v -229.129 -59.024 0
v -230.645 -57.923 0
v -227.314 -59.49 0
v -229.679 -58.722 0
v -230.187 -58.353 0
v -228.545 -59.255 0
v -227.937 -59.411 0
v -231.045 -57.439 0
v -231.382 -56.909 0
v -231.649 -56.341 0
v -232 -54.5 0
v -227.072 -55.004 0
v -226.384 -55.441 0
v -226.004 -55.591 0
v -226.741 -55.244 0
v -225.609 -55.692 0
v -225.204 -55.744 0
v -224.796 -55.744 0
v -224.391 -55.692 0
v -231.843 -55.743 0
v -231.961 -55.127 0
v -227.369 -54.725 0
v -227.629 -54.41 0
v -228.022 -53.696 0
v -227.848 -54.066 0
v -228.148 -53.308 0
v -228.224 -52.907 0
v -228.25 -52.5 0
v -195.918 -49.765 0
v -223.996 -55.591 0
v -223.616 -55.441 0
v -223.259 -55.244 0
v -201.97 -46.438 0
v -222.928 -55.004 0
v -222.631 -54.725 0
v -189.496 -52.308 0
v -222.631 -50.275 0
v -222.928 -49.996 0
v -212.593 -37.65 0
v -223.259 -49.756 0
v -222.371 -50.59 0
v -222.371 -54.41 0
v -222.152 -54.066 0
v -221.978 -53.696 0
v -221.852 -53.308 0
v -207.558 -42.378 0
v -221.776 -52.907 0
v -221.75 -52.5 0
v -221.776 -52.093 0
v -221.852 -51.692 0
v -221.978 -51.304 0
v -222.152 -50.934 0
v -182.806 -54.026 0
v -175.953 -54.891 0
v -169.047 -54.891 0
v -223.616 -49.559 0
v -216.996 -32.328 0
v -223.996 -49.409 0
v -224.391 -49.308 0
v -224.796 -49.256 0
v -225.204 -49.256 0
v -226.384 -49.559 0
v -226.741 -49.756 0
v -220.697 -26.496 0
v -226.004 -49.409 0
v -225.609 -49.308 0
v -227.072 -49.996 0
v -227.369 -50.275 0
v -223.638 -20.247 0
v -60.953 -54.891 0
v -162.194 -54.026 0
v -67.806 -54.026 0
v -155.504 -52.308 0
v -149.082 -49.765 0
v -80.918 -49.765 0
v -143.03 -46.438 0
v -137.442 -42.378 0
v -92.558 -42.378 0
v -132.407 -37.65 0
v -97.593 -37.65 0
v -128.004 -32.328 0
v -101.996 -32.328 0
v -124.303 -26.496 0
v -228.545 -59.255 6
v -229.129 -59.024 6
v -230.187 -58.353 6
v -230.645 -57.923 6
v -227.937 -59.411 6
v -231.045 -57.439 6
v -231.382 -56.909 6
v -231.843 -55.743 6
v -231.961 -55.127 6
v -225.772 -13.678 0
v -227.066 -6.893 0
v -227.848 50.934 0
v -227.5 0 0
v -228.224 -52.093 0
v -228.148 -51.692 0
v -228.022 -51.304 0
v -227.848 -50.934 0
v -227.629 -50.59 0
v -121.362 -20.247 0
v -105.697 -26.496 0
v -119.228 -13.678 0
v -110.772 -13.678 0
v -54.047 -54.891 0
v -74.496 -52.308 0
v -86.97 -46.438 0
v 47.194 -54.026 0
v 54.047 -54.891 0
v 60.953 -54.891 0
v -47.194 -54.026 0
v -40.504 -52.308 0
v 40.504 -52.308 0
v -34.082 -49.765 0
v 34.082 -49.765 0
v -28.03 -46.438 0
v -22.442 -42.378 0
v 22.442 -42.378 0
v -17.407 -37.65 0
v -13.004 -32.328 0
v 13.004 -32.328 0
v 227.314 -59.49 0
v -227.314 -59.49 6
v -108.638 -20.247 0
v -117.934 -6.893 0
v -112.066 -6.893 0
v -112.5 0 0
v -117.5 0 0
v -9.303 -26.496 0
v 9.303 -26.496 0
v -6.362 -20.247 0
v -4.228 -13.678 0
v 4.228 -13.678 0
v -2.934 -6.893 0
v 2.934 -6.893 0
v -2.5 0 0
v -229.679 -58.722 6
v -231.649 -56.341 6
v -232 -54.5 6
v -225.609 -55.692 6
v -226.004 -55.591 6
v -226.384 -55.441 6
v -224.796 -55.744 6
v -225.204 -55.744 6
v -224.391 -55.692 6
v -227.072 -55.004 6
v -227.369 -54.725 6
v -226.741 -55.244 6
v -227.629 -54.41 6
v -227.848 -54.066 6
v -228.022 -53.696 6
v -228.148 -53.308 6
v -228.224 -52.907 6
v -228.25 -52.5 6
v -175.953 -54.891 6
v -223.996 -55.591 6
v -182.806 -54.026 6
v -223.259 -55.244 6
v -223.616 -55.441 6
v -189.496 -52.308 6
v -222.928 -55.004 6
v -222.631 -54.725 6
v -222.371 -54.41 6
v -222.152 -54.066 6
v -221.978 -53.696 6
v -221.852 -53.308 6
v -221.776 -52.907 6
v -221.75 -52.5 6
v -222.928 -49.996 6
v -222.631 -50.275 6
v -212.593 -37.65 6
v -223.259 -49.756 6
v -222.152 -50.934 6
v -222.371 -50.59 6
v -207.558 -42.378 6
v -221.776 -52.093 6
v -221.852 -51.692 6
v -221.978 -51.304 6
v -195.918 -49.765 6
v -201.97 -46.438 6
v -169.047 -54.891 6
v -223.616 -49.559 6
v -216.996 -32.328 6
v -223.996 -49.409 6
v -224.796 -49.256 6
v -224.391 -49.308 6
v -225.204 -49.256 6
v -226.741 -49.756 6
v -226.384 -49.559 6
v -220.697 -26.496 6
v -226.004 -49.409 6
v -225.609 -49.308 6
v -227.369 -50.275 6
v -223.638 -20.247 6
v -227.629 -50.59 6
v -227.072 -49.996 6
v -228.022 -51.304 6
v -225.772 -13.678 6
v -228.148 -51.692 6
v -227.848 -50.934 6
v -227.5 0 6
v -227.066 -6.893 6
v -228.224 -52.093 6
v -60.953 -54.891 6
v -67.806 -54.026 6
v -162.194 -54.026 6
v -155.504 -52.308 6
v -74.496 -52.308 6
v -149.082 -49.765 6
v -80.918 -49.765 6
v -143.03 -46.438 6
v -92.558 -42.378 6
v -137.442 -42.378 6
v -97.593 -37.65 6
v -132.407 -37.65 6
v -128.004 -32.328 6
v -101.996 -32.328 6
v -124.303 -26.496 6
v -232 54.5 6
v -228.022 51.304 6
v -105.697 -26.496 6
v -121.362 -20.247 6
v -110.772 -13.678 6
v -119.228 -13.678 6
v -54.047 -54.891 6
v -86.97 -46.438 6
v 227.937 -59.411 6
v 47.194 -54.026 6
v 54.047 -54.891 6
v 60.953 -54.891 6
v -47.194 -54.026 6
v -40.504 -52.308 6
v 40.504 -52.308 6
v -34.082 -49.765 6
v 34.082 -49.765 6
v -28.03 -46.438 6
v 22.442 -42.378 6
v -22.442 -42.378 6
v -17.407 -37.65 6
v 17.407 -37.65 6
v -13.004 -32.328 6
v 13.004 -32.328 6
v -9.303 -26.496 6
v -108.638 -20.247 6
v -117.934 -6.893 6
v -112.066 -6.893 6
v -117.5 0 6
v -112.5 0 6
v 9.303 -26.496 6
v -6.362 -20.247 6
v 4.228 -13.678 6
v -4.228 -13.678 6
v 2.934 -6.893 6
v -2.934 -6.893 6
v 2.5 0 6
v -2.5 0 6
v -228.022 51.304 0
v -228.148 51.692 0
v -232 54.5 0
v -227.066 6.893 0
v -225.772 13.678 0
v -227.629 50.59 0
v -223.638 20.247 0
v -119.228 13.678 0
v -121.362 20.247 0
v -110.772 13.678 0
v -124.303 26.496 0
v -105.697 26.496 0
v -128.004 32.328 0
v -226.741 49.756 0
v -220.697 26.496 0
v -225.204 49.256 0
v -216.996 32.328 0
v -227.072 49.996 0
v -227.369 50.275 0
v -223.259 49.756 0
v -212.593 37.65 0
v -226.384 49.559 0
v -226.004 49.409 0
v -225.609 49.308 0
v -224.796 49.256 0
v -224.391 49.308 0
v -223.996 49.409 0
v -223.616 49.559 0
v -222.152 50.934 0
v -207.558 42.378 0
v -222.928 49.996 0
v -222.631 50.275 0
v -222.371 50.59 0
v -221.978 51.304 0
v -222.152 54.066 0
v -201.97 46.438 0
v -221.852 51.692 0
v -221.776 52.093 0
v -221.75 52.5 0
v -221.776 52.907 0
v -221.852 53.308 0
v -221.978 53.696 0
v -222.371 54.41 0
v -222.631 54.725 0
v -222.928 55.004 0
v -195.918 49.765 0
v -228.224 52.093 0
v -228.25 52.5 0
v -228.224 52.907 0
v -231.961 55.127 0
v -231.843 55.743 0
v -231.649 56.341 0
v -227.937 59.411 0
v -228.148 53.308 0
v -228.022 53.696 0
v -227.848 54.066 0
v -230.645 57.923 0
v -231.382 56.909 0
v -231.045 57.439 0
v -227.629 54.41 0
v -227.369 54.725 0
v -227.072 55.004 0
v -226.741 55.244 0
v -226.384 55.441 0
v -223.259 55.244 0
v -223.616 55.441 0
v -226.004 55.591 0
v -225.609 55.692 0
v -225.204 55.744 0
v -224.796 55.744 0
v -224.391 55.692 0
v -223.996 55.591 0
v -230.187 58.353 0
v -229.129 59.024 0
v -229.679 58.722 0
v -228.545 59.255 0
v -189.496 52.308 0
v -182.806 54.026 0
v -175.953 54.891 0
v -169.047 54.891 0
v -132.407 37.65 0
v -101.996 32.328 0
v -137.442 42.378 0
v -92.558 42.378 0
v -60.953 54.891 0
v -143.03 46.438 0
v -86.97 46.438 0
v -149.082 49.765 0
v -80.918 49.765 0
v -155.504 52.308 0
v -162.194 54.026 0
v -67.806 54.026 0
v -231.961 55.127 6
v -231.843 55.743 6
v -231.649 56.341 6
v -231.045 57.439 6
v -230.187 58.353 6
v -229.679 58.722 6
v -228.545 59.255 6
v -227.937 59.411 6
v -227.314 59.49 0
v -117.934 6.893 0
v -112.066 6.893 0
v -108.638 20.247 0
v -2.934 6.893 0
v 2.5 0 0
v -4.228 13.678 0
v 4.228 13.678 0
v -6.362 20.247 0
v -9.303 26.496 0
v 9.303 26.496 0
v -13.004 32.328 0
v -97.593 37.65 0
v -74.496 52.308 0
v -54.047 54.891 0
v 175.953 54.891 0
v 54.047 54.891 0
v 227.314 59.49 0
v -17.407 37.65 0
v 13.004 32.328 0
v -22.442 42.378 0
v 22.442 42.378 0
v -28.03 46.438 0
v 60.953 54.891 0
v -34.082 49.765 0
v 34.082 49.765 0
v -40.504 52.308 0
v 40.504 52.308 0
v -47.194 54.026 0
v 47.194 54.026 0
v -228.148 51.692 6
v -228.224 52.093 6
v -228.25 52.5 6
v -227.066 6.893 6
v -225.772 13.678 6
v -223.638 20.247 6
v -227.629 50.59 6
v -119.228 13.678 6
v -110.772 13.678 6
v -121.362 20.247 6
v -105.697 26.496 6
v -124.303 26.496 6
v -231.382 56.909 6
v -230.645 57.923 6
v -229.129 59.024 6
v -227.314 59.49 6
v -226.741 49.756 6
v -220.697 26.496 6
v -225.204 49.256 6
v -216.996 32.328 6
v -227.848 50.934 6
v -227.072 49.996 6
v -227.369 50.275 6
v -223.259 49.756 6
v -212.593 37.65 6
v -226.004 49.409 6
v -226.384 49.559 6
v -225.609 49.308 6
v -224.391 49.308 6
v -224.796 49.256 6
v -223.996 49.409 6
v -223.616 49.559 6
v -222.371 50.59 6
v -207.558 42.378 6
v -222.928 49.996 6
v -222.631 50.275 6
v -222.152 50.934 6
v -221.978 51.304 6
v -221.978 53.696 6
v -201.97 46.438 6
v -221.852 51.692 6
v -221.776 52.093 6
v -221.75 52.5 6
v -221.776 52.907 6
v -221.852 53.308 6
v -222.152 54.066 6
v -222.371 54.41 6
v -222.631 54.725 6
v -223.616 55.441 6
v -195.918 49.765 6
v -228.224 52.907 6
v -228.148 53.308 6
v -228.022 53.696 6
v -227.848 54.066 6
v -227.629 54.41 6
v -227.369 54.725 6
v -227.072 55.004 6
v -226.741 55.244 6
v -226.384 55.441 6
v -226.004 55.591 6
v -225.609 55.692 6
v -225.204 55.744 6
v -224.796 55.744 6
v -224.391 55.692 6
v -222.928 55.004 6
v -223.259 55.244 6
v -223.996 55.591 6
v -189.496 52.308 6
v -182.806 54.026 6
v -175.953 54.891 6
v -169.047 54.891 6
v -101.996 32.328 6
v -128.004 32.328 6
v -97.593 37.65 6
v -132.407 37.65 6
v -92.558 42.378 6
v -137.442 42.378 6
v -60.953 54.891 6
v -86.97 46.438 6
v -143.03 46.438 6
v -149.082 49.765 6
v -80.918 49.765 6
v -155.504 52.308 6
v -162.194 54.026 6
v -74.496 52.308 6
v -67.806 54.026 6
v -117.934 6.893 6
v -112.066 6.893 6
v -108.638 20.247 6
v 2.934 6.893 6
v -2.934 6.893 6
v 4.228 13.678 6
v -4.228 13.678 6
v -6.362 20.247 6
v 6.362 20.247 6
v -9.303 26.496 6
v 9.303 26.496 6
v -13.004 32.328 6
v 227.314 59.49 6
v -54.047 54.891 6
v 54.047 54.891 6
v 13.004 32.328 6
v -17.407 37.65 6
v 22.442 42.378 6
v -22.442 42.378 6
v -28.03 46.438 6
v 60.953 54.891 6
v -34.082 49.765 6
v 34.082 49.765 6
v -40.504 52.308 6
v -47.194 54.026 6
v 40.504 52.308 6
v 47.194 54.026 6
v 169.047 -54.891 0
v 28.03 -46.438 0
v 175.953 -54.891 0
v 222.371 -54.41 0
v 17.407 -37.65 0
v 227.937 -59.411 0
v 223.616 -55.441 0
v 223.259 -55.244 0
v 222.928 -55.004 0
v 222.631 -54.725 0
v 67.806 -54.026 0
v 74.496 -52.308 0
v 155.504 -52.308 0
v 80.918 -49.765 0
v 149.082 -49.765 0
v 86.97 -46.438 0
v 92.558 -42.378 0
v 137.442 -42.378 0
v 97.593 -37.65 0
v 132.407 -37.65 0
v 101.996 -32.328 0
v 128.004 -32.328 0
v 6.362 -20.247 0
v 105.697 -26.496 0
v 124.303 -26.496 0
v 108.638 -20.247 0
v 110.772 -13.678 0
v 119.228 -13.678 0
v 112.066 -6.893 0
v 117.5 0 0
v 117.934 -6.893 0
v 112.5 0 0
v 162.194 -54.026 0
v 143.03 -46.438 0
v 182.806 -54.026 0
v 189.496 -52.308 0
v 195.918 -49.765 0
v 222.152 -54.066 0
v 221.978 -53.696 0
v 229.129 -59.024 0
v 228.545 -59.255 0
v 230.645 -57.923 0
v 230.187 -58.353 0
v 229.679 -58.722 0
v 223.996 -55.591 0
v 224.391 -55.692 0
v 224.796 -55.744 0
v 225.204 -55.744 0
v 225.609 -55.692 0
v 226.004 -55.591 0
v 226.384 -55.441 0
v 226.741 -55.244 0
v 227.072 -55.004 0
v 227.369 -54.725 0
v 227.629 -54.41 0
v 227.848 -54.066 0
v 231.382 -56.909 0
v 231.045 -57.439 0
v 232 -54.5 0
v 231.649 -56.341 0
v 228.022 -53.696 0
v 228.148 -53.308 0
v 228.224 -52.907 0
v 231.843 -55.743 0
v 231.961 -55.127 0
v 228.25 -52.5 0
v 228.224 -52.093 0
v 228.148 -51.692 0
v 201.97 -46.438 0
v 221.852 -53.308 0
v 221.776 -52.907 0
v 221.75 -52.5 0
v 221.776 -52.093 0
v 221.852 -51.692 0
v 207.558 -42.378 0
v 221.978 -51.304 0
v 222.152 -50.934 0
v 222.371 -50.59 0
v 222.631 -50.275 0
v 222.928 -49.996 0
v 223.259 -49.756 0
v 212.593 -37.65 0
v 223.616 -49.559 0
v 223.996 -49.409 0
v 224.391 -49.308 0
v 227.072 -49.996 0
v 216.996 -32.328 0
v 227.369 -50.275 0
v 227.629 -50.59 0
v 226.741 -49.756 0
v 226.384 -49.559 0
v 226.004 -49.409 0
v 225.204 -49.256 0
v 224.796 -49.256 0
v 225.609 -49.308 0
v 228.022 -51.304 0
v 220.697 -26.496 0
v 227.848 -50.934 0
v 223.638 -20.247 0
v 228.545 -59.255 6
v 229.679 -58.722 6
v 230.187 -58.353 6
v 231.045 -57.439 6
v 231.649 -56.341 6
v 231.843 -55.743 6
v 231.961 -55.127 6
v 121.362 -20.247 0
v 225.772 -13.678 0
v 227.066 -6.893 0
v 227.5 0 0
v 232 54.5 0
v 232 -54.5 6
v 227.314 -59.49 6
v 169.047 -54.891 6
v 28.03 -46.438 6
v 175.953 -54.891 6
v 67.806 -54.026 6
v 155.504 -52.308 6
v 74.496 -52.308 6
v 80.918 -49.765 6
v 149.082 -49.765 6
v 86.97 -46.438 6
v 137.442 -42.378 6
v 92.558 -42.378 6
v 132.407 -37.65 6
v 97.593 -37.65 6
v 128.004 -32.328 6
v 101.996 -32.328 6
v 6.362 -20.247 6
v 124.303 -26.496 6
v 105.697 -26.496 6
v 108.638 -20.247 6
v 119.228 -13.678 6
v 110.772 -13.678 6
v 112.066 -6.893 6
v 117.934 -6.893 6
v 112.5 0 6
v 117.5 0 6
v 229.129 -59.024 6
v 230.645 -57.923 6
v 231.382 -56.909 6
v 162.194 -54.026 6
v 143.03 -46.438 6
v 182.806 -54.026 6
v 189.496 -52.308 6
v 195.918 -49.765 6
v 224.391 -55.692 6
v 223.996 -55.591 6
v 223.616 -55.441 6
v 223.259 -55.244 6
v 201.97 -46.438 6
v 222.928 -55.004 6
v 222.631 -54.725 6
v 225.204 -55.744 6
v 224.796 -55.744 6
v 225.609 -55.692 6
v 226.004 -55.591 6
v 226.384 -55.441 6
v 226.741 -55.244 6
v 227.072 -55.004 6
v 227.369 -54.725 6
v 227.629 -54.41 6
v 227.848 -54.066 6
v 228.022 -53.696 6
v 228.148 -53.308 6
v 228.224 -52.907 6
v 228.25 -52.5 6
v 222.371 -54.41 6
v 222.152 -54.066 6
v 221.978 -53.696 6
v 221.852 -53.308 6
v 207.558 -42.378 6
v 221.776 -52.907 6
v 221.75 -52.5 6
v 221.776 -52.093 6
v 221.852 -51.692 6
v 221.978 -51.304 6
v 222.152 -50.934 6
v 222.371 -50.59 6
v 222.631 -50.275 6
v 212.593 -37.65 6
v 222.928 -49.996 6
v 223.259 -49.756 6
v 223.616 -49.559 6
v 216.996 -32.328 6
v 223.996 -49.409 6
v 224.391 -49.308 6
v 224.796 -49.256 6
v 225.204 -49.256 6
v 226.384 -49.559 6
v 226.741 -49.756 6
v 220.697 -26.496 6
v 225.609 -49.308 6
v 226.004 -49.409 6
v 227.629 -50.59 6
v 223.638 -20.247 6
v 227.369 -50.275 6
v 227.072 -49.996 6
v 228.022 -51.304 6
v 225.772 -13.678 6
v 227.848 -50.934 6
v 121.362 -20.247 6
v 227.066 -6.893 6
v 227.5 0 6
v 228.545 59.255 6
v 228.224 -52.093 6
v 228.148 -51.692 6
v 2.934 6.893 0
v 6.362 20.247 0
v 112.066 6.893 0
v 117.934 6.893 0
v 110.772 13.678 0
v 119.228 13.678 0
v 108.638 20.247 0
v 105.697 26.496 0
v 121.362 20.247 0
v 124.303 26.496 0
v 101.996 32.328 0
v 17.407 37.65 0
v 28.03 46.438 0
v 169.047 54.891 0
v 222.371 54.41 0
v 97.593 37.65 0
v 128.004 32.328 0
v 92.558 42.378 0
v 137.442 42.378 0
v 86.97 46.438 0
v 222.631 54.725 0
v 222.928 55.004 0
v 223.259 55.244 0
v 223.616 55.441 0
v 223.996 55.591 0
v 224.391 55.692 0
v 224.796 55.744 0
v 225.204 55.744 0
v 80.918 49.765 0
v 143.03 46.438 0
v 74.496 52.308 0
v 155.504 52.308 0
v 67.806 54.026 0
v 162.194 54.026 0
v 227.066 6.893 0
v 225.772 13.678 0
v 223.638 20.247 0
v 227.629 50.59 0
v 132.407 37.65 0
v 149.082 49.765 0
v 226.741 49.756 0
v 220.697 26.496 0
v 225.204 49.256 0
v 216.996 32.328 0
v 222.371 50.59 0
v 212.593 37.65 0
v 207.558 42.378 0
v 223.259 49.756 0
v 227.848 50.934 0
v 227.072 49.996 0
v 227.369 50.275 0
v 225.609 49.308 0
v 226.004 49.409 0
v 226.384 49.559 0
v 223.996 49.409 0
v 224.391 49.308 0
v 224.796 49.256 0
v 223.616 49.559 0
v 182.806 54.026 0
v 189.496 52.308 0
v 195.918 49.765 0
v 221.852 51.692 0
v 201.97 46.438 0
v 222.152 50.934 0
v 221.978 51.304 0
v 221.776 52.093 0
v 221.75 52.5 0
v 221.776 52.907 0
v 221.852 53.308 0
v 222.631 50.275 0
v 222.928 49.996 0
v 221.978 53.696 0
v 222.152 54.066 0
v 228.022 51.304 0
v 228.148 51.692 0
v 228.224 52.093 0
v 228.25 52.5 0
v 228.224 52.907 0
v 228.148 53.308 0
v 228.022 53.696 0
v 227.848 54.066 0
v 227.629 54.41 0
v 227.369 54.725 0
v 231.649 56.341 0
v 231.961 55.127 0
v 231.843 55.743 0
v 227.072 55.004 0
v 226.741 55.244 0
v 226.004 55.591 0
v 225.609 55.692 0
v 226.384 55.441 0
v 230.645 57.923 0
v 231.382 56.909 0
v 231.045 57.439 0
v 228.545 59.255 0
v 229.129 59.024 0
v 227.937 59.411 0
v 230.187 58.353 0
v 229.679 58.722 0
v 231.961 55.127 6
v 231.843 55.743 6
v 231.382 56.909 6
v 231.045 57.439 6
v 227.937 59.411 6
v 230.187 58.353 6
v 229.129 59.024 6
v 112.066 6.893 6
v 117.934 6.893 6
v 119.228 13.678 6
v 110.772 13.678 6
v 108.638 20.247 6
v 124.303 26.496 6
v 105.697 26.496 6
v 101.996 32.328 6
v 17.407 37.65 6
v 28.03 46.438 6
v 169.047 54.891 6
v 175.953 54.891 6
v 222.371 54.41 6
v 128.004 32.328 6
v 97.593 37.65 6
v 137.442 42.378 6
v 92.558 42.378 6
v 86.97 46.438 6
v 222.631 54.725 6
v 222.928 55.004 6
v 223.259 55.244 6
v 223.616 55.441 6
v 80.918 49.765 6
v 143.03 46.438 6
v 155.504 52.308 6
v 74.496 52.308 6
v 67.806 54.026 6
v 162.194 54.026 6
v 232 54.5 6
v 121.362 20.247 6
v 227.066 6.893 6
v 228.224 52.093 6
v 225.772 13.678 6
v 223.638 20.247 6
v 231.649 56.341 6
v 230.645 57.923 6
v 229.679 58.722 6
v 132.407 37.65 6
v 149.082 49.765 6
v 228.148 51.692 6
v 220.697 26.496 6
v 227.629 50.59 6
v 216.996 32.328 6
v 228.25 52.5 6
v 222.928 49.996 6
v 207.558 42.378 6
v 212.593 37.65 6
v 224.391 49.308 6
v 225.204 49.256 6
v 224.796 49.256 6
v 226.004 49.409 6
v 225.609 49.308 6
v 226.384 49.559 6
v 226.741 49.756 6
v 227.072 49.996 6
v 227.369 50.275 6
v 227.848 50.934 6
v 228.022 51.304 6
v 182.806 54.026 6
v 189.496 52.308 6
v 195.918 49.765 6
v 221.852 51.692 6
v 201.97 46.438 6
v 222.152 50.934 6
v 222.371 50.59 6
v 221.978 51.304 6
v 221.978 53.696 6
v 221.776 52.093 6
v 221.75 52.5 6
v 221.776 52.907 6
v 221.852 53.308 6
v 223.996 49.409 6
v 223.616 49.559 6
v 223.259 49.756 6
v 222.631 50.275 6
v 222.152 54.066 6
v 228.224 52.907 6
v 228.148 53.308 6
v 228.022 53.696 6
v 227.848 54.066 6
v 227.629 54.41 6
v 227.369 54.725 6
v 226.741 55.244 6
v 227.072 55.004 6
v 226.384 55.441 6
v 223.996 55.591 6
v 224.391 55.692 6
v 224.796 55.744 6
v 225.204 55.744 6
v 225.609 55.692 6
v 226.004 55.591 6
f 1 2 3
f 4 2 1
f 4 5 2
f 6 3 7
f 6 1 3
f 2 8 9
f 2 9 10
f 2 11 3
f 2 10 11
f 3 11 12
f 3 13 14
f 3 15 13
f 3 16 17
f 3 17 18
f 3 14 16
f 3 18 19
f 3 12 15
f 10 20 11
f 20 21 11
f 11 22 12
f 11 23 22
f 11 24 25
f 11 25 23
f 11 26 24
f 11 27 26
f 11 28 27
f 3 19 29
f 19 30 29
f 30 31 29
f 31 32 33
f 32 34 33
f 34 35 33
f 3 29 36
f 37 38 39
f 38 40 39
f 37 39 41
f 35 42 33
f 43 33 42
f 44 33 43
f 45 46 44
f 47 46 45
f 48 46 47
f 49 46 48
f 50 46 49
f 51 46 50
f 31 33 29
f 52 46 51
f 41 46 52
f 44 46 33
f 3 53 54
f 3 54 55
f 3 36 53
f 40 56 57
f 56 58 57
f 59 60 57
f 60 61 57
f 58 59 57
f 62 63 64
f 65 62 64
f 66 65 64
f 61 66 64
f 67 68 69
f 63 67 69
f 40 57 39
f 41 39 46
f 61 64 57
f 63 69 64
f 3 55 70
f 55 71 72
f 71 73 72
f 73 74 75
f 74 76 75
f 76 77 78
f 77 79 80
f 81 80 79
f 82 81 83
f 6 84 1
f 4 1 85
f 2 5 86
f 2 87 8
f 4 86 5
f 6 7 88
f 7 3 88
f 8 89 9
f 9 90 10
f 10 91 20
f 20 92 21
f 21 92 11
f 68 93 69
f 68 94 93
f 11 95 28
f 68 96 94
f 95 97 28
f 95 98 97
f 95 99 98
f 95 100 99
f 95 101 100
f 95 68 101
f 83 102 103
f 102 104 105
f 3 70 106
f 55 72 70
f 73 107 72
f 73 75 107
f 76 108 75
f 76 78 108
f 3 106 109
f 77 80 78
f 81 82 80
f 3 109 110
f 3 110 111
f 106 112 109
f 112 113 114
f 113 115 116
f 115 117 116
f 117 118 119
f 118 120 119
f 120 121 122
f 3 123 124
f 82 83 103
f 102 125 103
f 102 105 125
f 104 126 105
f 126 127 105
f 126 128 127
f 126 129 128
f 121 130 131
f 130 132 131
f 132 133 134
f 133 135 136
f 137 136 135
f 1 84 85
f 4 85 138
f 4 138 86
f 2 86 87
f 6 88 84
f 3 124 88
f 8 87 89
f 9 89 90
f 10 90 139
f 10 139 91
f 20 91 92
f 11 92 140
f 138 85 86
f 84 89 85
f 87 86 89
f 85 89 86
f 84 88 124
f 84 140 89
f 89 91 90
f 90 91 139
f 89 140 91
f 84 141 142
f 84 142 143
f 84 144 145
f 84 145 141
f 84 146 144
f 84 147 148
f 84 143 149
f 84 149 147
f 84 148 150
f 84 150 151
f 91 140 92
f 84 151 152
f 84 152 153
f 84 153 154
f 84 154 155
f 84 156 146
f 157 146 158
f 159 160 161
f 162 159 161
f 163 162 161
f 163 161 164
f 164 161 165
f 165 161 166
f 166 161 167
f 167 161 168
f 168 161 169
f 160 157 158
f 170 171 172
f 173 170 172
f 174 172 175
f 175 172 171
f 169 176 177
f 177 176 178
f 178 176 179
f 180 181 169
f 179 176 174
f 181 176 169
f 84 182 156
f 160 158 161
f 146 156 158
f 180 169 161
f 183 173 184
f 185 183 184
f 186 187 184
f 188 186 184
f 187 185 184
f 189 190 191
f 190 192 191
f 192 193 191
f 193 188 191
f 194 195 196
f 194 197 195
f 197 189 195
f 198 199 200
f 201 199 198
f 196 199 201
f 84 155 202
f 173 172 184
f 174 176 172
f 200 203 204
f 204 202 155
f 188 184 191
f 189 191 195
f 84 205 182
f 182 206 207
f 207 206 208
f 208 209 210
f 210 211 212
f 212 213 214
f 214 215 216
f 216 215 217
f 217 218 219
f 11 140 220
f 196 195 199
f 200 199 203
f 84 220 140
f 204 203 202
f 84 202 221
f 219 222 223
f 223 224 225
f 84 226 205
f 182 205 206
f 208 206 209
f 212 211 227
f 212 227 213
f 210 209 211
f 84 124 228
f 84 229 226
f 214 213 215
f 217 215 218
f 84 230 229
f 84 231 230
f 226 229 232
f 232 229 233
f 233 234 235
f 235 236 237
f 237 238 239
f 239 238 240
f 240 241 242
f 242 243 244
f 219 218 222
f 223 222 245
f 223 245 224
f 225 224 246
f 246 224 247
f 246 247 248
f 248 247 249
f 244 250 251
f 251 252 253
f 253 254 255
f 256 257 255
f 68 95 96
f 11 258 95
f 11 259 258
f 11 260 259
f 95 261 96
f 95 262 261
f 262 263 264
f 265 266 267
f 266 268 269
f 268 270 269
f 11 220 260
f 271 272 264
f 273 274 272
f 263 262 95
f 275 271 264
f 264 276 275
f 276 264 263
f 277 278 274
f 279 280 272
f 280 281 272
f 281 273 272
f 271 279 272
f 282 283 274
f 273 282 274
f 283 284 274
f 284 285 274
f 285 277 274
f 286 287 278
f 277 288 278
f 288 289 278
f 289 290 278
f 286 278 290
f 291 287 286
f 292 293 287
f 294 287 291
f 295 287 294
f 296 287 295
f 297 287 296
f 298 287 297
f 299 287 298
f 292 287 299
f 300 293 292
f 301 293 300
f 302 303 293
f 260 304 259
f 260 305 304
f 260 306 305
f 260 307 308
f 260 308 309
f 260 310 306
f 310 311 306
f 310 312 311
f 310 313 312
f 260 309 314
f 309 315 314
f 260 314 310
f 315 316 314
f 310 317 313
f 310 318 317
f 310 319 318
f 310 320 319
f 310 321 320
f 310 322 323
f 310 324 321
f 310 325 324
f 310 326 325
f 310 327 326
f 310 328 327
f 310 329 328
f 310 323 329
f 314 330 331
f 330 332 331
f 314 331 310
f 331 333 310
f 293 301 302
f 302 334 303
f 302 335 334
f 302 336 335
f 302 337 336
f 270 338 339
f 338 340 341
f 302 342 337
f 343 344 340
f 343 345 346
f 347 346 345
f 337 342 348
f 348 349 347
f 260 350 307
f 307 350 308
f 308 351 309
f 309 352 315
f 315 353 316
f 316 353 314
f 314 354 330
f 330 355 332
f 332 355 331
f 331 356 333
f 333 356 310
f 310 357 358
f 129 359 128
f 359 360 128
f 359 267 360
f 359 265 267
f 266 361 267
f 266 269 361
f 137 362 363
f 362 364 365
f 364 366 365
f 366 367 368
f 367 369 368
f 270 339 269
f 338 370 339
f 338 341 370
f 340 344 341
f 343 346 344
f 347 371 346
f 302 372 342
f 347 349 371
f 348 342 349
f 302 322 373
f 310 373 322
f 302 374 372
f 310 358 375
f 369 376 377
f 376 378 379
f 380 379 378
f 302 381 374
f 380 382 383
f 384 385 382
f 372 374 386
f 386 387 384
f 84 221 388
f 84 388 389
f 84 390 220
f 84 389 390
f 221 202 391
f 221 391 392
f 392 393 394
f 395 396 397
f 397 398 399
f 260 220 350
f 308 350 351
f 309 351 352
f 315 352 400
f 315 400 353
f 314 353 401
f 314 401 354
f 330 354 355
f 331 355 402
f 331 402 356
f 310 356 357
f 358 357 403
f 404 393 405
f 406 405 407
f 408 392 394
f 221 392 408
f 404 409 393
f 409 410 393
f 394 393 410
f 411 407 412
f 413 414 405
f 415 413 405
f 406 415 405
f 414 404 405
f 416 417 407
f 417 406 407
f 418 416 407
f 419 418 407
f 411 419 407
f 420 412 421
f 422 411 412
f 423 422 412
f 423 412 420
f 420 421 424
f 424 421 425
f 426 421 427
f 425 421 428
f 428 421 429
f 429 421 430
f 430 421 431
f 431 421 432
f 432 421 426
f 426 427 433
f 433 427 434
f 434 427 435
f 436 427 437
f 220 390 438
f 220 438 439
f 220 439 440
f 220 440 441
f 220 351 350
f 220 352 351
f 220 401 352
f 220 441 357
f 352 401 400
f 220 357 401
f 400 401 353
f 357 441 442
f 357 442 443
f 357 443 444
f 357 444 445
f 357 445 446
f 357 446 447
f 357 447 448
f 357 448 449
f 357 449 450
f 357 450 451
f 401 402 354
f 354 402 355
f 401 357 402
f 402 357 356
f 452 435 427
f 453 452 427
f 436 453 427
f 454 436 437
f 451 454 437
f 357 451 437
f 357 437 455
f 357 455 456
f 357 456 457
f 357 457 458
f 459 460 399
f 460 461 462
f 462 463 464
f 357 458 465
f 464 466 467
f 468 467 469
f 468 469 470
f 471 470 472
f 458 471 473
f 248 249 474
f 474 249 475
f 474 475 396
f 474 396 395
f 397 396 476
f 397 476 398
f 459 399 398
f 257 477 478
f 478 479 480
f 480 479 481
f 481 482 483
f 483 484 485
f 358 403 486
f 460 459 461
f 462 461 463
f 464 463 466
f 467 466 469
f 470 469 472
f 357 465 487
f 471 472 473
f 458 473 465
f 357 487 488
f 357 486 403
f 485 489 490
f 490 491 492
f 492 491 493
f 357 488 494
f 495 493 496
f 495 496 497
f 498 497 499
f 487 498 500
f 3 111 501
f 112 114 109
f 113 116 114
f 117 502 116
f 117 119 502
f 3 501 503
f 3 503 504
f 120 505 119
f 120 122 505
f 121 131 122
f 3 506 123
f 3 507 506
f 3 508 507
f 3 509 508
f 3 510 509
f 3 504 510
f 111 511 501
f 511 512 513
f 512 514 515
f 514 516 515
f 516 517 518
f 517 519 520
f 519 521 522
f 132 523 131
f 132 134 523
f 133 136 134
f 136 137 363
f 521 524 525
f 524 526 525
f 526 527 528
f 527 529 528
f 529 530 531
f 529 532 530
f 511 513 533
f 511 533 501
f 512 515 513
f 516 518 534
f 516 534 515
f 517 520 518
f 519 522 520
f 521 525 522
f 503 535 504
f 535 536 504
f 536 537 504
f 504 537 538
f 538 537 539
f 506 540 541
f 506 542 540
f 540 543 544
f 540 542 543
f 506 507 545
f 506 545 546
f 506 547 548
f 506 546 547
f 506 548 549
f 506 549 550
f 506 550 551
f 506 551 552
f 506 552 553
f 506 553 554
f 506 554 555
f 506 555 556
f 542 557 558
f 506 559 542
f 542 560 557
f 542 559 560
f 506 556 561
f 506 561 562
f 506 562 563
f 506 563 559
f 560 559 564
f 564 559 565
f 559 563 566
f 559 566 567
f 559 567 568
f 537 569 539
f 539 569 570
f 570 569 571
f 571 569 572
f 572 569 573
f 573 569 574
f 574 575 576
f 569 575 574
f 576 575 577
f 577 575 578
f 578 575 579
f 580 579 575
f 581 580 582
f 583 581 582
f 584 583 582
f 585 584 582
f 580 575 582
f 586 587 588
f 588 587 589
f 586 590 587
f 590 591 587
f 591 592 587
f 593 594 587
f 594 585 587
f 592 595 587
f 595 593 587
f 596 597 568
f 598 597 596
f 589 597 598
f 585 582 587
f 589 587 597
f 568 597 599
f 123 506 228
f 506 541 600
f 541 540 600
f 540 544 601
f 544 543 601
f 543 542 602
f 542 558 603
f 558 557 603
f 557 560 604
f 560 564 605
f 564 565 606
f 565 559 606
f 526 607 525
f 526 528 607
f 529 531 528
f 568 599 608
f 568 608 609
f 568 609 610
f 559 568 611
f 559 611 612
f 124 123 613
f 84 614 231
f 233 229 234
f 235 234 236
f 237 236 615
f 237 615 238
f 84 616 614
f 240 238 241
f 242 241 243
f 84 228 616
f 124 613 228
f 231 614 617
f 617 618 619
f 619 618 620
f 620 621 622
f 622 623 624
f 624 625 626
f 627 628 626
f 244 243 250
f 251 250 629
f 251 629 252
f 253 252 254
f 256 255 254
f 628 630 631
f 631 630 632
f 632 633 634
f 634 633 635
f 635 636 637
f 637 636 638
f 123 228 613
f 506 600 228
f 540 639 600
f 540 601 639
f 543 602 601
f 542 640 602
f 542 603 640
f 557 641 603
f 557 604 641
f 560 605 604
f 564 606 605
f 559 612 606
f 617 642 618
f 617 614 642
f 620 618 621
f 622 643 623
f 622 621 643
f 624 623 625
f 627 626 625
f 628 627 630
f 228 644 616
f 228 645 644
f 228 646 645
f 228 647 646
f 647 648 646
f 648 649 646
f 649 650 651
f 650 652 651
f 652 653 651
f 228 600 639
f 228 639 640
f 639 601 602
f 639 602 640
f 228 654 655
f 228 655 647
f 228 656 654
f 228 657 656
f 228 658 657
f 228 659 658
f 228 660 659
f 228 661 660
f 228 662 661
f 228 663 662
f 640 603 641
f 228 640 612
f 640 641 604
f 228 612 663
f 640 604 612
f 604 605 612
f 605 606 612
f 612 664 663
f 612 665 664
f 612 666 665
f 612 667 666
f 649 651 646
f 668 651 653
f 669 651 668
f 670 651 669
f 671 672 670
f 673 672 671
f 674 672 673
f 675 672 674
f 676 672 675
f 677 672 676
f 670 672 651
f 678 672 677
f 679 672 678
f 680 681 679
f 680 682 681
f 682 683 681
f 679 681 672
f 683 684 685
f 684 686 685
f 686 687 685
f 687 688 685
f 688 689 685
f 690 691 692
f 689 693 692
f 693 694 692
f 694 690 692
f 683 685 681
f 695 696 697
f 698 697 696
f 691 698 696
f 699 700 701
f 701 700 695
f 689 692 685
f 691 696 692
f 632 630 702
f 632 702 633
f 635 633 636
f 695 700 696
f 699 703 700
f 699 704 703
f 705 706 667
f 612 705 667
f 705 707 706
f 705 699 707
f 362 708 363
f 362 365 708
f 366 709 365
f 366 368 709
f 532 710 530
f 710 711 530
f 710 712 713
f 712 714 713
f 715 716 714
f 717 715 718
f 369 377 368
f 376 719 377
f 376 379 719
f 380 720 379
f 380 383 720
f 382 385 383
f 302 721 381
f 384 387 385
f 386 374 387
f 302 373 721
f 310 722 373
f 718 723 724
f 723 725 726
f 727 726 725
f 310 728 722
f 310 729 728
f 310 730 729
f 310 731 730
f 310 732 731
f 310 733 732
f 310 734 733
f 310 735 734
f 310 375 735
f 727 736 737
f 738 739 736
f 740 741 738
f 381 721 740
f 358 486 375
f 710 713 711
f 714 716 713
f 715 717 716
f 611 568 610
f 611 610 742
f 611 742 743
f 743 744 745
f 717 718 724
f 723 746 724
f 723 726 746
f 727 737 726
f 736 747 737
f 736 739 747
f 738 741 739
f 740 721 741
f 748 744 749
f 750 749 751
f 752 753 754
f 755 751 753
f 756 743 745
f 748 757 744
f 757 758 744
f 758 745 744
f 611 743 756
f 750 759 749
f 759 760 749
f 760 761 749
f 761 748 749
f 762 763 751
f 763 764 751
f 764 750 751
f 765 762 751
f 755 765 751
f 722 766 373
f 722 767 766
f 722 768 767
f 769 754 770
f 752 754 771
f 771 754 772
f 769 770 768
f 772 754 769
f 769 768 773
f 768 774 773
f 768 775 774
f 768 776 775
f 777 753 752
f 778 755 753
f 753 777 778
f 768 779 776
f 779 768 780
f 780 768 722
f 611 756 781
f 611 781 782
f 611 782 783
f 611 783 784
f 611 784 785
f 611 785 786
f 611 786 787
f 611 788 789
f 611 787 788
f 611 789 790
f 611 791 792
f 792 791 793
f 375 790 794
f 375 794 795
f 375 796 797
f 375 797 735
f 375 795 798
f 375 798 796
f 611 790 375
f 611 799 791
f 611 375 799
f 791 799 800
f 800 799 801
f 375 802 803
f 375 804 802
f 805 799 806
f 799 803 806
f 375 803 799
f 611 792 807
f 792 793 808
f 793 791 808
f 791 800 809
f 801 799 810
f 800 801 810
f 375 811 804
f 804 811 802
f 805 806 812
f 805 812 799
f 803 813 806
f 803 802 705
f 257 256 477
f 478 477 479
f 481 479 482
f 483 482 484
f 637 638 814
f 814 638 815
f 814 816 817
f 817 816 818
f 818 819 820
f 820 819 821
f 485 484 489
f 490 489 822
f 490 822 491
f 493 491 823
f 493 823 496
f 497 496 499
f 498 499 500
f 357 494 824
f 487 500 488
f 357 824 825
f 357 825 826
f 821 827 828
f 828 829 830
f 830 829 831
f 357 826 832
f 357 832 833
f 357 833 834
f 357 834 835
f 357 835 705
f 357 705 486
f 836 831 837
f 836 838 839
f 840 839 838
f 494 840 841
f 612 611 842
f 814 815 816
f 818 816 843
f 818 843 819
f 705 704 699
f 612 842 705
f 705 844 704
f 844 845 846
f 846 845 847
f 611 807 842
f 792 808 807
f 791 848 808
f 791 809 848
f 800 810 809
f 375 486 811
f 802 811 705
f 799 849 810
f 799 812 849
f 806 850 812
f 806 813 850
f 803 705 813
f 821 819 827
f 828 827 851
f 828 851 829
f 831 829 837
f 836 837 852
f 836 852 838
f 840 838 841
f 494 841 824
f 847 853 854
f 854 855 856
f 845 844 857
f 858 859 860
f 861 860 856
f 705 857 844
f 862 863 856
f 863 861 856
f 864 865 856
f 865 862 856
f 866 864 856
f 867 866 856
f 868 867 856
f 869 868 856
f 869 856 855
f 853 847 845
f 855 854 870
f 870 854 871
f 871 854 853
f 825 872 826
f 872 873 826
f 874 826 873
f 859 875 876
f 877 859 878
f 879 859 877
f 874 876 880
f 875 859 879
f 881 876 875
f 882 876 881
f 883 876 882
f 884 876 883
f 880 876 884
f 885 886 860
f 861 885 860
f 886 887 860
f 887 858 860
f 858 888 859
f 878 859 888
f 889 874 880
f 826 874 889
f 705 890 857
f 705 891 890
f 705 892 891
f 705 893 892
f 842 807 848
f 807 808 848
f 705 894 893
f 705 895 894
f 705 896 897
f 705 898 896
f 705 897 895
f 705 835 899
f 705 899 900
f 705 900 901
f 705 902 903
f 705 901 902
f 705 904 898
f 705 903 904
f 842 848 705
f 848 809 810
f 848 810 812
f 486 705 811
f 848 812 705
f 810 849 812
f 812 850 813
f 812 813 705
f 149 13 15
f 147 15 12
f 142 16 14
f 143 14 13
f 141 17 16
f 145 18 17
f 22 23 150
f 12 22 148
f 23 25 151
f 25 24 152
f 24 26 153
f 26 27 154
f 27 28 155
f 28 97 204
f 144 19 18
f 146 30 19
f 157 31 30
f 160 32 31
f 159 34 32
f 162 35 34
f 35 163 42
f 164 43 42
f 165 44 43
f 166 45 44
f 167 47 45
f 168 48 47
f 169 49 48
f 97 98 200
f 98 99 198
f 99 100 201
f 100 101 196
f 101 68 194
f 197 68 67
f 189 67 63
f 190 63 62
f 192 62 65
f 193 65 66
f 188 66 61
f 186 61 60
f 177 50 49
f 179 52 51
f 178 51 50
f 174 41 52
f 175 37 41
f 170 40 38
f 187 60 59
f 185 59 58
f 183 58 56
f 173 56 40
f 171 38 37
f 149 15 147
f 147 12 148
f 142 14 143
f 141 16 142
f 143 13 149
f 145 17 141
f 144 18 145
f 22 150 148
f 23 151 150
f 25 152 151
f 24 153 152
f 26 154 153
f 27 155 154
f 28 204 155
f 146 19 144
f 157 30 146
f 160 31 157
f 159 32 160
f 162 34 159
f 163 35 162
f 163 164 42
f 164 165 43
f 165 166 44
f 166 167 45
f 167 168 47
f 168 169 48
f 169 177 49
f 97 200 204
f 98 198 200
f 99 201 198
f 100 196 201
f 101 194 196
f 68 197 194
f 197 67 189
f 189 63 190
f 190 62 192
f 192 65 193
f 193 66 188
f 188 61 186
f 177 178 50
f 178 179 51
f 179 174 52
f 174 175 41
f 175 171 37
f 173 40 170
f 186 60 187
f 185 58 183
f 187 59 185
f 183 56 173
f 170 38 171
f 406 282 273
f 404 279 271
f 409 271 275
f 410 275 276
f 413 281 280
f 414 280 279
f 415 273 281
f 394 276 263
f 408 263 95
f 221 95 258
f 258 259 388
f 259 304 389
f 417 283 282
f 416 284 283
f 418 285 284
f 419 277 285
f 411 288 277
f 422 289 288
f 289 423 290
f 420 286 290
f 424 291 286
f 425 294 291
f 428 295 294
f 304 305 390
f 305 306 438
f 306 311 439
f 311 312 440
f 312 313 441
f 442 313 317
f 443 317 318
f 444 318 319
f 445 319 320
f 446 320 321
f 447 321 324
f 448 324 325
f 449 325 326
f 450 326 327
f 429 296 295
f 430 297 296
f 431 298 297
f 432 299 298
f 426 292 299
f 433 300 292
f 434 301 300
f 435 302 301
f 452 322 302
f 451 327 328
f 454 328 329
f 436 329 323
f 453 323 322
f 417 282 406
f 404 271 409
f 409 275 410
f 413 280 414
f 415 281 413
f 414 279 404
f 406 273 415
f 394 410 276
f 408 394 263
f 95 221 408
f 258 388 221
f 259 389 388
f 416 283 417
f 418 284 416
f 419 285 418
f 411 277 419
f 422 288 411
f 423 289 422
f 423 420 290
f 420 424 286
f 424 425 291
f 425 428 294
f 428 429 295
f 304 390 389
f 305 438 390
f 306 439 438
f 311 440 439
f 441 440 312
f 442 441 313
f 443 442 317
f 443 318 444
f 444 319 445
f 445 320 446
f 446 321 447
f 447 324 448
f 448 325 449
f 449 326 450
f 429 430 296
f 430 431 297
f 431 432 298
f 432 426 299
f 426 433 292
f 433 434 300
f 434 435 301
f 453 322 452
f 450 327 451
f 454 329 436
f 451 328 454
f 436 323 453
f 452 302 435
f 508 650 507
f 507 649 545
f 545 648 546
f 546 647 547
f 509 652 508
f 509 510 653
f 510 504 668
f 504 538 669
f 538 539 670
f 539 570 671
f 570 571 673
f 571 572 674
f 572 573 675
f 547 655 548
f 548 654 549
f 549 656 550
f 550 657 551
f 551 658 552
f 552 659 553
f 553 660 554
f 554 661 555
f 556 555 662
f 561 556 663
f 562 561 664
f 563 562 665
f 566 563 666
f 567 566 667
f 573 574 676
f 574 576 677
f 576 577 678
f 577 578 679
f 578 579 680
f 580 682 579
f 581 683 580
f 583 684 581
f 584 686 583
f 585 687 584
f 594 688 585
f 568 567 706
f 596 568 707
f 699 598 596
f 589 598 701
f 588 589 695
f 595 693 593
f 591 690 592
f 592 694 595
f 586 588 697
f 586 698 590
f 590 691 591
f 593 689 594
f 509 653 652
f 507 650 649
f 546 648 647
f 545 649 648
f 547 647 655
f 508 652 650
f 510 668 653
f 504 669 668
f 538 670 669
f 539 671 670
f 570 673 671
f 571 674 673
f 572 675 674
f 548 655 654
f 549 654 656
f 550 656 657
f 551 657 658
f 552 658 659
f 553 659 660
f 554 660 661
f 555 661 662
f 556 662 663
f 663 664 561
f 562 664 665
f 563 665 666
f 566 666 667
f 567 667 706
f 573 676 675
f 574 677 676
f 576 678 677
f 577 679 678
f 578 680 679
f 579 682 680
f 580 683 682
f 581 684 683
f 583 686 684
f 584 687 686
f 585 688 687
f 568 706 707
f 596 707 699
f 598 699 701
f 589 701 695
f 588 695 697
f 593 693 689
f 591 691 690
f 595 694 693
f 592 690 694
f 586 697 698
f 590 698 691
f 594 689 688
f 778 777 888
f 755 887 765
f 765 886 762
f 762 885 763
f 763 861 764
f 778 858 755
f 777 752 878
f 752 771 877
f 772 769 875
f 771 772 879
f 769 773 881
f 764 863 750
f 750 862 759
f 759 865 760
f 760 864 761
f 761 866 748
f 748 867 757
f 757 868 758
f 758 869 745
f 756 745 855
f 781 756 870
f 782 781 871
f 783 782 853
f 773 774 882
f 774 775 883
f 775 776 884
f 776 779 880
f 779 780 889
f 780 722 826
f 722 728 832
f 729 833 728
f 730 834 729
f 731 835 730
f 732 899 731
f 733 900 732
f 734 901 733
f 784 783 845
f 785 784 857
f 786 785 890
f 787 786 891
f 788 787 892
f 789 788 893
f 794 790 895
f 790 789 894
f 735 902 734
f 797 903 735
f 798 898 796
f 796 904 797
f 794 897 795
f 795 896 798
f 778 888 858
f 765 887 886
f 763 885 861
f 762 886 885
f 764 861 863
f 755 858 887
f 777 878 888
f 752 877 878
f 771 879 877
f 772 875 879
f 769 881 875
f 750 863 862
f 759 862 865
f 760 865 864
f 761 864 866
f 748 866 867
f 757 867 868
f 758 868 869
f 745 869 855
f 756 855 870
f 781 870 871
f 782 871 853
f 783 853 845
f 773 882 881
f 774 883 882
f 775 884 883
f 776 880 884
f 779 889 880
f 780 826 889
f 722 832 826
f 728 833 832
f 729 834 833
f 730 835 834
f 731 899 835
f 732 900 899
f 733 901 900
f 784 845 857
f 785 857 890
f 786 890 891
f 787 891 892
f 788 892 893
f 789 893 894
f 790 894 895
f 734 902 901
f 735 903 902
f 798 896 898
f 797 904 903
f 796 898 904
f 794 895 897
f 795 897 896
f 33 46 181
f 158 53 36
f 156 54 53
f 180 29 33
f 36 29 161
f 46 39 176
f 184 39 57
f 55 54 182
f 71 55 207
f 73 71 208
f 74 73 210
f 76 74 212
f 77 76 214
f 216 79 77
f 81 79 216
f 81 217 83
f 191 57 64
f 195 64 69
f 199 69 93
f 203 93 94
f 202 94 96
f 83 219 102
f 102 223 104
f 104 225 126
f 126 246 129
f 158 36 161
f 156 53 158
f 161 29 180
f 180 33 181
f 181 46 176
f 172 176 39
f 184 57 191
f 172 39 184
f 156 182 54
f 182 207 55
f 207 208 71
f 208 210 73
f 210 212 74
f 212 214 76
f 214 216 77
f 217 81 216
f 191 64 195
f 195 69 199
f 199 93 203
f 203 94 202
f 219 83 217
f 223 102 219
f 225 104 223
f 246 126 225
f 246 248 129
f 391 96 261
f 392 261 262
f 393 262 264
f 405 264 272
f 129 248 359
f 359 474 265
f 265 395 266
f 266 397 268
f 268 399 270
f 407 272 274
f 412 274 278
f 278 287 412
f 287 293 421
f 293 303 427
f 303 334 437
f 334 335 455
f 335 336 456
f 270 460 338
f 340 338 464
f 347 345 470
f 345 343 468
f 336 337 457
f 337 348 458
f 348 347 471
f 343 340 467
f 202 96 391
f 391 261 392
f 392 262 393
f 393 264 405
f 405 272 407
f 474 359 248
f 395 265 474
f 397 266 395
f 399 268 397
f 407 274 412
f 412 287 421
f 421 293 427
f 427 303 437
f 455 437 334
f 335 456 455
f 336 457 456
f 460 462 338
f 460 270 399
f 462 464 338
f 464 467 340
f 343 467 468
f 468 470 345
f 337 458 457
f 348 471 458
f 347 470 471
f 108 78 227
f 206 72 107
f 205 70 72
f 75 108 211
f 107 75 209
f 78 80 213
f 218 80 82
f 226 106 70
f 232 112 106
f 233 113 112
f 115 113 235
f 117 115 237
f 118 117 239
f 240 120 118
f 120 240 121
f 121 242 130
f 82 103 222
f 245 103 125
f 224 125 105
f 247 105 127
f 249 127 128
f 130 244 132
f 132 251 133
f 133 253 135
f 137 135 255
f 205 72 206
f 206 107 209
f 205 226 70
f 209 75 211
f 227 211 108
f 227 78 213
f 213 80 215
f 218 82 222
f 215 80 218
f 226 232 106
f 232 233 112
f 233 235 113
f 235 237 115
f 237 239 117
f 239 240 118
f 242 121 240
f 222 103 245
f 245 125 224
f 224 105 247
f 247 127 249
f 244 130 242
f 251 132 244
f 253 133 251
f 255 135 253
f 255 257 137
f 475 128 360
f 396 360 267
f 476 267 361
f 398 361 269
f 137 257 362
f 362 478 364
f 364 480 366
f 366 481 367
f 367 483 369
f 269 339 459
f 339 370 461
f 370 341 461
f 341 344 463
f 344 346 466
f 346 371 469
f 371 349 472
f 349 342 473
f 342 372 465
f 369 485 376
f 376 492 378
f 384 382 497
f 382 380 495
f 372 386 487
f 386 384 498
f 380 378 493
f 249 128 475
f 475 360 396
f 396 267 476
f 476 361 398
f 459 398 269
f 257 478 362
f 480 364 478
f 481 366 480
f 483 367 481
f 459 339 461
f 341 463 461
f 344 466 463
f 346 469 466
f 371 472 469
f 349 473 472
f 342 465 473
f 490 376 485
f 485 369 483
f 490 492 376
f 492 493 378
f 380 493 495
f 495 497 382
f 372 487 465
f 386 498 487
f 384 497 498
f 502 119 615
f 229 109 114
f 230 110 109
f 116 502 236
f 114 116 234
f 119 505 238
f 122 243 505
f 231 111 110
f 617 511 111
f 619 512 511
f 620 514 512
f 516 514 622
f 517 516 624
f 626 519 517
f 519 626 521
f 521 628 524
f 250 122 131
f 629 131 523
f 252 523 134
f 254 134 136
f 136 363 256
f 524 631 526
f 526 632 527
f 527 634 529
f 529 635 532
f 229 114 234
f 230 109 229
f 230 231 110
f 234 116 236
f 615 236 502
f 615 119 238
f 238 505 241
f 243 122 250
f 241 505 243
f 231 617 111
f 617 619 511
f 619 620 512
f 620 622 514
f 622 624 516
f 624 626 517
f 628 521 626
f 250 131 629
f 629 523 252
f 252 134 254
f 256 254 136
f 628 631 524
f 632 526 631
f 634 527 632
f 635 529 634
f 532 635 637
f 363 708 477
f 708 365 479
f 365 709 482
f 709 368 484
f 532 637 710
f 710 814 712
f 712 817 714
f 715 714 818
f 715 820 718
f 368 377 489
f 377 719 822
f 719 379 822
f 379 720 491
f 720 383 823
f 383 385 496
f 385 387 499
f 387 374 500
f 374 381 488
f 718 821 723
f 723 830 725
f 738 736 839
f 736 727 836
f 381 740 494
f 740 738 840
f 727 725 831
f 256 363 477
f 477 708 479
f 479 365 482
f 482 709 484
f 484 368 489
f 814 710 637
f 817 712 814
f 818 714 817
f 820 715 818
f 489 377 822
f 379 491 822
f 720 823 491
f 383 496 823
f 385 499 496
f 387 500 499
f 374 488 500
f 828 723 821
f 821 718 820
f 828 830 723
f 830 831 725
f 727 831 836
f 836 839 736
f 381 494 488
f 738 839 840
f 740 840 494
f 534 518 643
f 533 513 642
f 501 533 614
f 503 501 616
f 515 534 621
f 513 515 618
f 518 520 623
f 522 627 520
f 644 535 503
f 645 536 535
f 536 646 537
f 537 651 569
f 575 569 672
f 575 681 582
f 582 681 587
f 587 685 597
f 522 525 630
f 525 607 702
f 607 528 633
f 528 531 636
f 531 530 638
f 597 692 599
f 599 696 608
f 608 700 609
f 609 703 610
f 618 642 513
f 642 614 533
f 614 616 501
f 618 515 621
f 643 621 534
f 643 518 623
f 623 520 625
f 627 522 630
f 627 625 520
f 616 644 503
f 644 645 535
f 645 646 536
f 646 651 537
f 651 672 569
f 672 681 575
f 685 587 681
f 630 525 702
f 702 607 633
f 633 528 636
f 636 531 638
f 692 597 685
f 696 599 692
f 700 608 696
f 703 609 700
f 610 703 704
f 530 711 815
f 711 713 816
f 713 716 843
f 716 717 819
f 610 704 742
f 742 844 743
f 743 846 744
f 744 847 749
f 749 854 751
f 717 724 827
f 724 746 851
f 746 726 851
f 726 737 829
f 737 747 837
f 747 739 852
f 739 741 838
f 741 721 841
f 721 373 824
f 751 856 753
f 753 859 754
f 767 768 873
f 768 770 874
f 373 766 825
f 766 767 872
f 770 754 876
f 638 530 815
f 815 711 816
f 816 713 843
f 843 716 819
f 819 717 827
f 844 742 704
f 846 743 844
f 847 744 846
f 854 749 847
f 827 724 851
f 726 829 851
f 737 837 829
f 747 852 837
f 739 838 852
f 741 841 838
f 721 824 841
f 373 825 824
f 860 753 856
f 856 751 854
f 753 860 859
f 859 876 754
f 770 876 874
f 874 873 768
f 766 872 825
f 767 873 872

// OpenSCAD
$fn = 50;

difference() {
	union() {
		hull() {
			translate(v = [-227.0, 54.5, 0]) {
				cylinder(h = 6, r = 5);
			}
			translate(v = [227.0, 54.5, 0]) {
				cylinder(h = 6, r = 5);
			}
			translate(v = [-227.0, -54.5, 0]) {
				cylinder(h = 6, r = 5);
			}
			translate(v = [227.0, -54.5, 0]) {
				cylinder(h = 6, r = 5);
			}
		}
	}
	union() {
		translate(v = [-225.0, -52.5, -100.0]) {
			cylinder(h = 200, r = 3.25);
		}
		translate(v = [-225.0, 52.5, -100.0]) {
			cylinder(h = 200, r = 3.25);
		}
		translate(v = [225.0, -52.5, -100.0]) {
			cylinder(h = 200, r = 3.25);
		}
		translate(v = [225.0, 52.5, -100.0]) {
			cylinder(h = 200, r = 3.25);
		}
		translate(v = [-225.0, -52.5, -100.0]) {
			cylinder(h = 200, r = 1.8);
		}
		translate(v = [-225.0, 52.5, -100.0]) {
			cylinder(h = 200, r = 1.8);
		}
		translate(v = [225.0, -52.5, -100.0]) {
			cylinder(h = 200, r = 1.8);
		}
		translate(v = [225.0, 52.5, -100.0]) {
			cylinder(h = 200, r = 1.8);
		}
		translate(v = [-172.5, 0, 0.0]) {
			cylinder(h = 6, r = 55.0);
		}
		translate(v = [-57.5, 0, 0.0]) {
			cylinder(h = 6, r = 55.0);
		}
		translate(v = [57.5, 0, 0.0]) {
			cylinder(h = 6, r = 55.0);
		}
		translate(v = [172.5, 0, 0.0]) {
			cylinder(h = 6, r = 55.0);
		}
	}
}
